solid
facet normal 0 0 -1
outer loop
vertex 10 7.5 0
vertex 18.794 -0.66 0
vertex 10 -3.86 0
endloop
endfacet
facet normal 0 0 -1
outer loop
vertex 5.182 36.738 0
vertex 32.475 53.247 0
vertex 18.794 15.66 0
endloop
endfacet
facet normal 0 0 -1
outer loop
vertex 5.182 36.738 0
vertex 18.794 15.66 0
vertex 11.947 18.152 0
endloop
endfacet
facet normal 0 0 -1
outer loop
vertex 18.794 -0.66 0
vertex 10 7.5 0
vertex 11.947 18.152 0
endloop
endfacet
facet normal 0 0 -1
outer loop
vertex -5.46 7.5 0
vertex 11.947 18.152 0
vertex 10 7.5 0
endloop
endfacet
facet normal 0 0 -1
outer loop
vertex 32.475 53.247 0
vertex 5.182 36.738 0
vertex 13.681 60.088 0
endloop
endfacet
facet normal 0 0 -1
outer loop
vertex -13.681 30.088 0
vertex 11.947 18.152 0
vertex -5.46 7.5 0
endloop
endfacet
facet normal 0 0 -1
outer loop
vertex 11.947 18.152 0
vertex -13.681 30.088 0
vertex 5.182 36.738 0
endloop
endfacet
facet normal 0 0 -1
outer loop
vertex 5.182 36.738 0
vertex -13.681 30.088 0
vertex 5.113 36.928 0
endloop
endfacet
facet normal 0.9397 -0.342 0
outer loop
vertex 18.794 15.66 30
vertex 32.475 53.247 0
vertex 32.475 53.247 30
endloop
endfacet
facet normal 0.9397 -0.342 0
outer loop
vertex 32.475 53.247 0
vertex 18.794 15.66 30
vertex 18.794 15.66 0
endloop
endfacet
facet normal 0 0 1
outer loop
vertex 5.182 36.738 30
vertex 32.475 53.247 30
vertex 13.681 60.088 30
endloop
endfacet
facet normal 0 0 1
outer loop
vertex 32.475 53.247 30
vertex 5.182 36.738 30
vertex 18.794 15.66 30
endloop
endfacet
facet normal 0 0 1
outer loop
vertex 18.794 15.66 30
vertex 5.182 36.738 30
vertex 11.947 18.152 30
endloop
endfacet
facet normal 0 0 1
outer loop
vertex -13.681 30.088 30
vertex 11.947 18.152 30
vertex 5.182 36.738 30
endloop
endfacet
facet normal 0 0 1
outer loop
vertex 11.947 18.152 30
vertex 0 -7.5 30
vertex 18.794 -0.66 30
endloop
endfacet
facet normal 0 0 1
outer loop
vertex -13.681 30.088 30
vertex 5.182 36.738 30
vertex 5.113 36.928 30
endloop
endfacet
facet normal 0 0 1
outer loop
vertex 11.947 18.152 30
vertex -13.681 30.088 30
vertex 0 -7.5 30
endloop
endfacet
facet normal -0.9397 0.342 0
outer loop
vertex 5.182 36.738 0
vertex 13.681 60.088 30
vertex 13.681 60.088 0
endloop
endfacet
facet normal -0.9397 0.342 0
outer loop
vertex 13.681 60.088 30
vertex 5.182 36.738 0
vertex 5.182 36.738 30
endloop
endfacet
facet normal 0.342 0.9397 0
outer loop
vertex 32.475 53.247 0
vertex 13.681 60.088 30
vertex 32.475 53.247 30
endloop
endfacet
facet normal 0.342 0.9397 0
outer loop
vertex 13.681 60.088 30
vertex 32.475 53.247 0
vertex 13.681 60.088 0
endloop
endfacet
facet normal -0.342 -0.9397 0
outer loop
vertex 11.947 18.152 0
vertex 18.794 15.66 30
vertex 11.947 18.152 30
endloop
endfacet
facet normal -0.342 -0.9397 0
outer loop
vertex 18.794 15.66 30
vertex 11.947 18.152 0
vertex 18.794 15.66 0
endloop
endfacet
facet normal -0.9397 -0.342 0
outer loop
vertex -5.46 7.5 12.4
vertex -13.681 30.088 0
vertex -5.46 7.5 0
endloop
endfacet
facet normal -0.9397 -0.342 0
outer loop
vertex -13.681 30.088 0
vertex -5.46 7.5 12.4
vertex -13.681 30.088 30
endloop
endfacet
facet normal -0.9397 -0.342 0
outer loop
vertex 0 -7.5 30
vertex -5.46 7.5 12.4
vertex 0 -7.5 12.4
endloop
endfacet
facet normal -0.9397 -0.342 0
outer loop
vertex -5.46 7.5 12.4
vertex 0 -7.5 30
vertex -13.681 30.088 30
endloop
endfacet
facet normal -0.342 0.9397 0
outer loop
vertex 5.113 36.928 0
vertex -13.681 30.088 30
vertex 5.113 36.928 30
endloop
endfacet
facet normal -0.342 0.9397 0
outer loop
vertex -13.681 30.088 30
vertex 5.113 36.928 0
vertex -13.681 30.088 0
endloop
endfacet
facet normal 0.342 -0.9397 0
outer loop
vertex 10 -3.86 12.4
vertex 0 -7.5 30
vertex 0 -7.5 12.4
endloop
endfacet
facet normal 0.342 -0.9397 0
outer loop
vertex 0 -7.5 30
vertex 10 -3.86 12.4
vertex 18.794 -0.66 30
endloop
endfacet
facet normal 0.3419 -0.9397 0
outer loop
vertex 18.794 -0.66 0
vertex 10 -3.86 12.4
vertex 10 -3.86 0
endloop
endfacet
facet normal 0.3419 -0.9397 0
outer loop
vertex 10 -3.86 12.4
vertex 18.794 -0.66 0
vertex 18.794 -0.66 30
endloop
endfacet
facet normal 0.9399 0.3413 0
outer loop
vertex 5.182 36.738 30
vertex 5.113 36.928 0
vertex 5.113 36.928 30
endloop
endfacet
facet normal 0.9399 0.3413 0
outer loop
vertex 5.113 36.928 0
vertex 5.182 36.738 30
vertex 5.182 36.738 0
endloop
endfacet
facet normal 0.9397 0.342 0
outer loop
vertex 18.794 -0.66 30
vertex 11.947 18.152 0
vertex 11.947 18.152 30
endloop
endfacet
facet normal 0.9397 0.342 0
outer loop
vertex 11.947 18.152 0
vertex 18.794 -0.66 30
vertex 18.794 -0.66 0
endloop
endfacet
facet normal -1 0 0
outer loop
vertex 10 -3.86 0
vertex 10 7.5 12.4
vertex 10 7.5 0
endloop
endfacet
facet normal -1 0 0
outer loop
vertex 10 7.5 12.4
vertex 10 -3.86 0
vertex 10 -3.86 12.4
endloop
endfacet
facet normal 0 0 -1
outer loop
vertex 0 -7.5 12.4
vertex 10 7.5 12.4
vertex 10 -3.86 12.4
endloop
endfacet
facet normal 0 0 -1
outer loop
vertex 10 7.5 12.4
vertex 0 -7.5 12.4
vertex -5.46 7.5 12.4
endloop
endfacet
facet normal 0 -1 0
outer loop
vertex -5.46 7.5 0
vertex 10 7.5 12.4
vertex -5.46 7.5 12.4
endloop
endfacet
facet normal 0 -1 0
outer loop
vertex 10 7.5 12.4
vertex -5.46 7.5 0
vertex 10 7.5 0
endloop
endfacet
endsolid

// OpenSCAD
// Bird Shape in OpenSCAD

$fn = 32;

module bird(body_width, body_height, neck_height, wing_span, wing_length, beak_height) {
  difference() {
    union() {
      // Body
      cylinder(h = body_height, r1 = 5, r2 = 2, $fn = $fn);

      // Neck
      translate([0, 0, body_height])
        cylinder(h = neck_height, r1 = 2, r2 = 1, $fn = $fn);

      // Wings
      translate([0, body_height/2 + wing_length/2, 0])
        rotate([0, 0, -20])
          cube([body_width, wing_span, wing_length]);
      translate([0, body_height/2 - wing_length/2, 0])
        rotate([0, 0, 20])
          cube([body_width, wing_span, wing_length]);

      // Beak
      translate([0, body_height + neck_height + beak_height/2, 0])
        cube([body_width/2, 1, beak_height]);
    }

    // Subtract body for a hollow bird
    translate([0, 0, -0.1])
      cube([body_width, body_height, body_height + 10], center = true);
  }
}

bird(body_width = 20, body_height = 15, neck_height = 10, wing_span = 40, wing_length = 30, beak_height = 5);
